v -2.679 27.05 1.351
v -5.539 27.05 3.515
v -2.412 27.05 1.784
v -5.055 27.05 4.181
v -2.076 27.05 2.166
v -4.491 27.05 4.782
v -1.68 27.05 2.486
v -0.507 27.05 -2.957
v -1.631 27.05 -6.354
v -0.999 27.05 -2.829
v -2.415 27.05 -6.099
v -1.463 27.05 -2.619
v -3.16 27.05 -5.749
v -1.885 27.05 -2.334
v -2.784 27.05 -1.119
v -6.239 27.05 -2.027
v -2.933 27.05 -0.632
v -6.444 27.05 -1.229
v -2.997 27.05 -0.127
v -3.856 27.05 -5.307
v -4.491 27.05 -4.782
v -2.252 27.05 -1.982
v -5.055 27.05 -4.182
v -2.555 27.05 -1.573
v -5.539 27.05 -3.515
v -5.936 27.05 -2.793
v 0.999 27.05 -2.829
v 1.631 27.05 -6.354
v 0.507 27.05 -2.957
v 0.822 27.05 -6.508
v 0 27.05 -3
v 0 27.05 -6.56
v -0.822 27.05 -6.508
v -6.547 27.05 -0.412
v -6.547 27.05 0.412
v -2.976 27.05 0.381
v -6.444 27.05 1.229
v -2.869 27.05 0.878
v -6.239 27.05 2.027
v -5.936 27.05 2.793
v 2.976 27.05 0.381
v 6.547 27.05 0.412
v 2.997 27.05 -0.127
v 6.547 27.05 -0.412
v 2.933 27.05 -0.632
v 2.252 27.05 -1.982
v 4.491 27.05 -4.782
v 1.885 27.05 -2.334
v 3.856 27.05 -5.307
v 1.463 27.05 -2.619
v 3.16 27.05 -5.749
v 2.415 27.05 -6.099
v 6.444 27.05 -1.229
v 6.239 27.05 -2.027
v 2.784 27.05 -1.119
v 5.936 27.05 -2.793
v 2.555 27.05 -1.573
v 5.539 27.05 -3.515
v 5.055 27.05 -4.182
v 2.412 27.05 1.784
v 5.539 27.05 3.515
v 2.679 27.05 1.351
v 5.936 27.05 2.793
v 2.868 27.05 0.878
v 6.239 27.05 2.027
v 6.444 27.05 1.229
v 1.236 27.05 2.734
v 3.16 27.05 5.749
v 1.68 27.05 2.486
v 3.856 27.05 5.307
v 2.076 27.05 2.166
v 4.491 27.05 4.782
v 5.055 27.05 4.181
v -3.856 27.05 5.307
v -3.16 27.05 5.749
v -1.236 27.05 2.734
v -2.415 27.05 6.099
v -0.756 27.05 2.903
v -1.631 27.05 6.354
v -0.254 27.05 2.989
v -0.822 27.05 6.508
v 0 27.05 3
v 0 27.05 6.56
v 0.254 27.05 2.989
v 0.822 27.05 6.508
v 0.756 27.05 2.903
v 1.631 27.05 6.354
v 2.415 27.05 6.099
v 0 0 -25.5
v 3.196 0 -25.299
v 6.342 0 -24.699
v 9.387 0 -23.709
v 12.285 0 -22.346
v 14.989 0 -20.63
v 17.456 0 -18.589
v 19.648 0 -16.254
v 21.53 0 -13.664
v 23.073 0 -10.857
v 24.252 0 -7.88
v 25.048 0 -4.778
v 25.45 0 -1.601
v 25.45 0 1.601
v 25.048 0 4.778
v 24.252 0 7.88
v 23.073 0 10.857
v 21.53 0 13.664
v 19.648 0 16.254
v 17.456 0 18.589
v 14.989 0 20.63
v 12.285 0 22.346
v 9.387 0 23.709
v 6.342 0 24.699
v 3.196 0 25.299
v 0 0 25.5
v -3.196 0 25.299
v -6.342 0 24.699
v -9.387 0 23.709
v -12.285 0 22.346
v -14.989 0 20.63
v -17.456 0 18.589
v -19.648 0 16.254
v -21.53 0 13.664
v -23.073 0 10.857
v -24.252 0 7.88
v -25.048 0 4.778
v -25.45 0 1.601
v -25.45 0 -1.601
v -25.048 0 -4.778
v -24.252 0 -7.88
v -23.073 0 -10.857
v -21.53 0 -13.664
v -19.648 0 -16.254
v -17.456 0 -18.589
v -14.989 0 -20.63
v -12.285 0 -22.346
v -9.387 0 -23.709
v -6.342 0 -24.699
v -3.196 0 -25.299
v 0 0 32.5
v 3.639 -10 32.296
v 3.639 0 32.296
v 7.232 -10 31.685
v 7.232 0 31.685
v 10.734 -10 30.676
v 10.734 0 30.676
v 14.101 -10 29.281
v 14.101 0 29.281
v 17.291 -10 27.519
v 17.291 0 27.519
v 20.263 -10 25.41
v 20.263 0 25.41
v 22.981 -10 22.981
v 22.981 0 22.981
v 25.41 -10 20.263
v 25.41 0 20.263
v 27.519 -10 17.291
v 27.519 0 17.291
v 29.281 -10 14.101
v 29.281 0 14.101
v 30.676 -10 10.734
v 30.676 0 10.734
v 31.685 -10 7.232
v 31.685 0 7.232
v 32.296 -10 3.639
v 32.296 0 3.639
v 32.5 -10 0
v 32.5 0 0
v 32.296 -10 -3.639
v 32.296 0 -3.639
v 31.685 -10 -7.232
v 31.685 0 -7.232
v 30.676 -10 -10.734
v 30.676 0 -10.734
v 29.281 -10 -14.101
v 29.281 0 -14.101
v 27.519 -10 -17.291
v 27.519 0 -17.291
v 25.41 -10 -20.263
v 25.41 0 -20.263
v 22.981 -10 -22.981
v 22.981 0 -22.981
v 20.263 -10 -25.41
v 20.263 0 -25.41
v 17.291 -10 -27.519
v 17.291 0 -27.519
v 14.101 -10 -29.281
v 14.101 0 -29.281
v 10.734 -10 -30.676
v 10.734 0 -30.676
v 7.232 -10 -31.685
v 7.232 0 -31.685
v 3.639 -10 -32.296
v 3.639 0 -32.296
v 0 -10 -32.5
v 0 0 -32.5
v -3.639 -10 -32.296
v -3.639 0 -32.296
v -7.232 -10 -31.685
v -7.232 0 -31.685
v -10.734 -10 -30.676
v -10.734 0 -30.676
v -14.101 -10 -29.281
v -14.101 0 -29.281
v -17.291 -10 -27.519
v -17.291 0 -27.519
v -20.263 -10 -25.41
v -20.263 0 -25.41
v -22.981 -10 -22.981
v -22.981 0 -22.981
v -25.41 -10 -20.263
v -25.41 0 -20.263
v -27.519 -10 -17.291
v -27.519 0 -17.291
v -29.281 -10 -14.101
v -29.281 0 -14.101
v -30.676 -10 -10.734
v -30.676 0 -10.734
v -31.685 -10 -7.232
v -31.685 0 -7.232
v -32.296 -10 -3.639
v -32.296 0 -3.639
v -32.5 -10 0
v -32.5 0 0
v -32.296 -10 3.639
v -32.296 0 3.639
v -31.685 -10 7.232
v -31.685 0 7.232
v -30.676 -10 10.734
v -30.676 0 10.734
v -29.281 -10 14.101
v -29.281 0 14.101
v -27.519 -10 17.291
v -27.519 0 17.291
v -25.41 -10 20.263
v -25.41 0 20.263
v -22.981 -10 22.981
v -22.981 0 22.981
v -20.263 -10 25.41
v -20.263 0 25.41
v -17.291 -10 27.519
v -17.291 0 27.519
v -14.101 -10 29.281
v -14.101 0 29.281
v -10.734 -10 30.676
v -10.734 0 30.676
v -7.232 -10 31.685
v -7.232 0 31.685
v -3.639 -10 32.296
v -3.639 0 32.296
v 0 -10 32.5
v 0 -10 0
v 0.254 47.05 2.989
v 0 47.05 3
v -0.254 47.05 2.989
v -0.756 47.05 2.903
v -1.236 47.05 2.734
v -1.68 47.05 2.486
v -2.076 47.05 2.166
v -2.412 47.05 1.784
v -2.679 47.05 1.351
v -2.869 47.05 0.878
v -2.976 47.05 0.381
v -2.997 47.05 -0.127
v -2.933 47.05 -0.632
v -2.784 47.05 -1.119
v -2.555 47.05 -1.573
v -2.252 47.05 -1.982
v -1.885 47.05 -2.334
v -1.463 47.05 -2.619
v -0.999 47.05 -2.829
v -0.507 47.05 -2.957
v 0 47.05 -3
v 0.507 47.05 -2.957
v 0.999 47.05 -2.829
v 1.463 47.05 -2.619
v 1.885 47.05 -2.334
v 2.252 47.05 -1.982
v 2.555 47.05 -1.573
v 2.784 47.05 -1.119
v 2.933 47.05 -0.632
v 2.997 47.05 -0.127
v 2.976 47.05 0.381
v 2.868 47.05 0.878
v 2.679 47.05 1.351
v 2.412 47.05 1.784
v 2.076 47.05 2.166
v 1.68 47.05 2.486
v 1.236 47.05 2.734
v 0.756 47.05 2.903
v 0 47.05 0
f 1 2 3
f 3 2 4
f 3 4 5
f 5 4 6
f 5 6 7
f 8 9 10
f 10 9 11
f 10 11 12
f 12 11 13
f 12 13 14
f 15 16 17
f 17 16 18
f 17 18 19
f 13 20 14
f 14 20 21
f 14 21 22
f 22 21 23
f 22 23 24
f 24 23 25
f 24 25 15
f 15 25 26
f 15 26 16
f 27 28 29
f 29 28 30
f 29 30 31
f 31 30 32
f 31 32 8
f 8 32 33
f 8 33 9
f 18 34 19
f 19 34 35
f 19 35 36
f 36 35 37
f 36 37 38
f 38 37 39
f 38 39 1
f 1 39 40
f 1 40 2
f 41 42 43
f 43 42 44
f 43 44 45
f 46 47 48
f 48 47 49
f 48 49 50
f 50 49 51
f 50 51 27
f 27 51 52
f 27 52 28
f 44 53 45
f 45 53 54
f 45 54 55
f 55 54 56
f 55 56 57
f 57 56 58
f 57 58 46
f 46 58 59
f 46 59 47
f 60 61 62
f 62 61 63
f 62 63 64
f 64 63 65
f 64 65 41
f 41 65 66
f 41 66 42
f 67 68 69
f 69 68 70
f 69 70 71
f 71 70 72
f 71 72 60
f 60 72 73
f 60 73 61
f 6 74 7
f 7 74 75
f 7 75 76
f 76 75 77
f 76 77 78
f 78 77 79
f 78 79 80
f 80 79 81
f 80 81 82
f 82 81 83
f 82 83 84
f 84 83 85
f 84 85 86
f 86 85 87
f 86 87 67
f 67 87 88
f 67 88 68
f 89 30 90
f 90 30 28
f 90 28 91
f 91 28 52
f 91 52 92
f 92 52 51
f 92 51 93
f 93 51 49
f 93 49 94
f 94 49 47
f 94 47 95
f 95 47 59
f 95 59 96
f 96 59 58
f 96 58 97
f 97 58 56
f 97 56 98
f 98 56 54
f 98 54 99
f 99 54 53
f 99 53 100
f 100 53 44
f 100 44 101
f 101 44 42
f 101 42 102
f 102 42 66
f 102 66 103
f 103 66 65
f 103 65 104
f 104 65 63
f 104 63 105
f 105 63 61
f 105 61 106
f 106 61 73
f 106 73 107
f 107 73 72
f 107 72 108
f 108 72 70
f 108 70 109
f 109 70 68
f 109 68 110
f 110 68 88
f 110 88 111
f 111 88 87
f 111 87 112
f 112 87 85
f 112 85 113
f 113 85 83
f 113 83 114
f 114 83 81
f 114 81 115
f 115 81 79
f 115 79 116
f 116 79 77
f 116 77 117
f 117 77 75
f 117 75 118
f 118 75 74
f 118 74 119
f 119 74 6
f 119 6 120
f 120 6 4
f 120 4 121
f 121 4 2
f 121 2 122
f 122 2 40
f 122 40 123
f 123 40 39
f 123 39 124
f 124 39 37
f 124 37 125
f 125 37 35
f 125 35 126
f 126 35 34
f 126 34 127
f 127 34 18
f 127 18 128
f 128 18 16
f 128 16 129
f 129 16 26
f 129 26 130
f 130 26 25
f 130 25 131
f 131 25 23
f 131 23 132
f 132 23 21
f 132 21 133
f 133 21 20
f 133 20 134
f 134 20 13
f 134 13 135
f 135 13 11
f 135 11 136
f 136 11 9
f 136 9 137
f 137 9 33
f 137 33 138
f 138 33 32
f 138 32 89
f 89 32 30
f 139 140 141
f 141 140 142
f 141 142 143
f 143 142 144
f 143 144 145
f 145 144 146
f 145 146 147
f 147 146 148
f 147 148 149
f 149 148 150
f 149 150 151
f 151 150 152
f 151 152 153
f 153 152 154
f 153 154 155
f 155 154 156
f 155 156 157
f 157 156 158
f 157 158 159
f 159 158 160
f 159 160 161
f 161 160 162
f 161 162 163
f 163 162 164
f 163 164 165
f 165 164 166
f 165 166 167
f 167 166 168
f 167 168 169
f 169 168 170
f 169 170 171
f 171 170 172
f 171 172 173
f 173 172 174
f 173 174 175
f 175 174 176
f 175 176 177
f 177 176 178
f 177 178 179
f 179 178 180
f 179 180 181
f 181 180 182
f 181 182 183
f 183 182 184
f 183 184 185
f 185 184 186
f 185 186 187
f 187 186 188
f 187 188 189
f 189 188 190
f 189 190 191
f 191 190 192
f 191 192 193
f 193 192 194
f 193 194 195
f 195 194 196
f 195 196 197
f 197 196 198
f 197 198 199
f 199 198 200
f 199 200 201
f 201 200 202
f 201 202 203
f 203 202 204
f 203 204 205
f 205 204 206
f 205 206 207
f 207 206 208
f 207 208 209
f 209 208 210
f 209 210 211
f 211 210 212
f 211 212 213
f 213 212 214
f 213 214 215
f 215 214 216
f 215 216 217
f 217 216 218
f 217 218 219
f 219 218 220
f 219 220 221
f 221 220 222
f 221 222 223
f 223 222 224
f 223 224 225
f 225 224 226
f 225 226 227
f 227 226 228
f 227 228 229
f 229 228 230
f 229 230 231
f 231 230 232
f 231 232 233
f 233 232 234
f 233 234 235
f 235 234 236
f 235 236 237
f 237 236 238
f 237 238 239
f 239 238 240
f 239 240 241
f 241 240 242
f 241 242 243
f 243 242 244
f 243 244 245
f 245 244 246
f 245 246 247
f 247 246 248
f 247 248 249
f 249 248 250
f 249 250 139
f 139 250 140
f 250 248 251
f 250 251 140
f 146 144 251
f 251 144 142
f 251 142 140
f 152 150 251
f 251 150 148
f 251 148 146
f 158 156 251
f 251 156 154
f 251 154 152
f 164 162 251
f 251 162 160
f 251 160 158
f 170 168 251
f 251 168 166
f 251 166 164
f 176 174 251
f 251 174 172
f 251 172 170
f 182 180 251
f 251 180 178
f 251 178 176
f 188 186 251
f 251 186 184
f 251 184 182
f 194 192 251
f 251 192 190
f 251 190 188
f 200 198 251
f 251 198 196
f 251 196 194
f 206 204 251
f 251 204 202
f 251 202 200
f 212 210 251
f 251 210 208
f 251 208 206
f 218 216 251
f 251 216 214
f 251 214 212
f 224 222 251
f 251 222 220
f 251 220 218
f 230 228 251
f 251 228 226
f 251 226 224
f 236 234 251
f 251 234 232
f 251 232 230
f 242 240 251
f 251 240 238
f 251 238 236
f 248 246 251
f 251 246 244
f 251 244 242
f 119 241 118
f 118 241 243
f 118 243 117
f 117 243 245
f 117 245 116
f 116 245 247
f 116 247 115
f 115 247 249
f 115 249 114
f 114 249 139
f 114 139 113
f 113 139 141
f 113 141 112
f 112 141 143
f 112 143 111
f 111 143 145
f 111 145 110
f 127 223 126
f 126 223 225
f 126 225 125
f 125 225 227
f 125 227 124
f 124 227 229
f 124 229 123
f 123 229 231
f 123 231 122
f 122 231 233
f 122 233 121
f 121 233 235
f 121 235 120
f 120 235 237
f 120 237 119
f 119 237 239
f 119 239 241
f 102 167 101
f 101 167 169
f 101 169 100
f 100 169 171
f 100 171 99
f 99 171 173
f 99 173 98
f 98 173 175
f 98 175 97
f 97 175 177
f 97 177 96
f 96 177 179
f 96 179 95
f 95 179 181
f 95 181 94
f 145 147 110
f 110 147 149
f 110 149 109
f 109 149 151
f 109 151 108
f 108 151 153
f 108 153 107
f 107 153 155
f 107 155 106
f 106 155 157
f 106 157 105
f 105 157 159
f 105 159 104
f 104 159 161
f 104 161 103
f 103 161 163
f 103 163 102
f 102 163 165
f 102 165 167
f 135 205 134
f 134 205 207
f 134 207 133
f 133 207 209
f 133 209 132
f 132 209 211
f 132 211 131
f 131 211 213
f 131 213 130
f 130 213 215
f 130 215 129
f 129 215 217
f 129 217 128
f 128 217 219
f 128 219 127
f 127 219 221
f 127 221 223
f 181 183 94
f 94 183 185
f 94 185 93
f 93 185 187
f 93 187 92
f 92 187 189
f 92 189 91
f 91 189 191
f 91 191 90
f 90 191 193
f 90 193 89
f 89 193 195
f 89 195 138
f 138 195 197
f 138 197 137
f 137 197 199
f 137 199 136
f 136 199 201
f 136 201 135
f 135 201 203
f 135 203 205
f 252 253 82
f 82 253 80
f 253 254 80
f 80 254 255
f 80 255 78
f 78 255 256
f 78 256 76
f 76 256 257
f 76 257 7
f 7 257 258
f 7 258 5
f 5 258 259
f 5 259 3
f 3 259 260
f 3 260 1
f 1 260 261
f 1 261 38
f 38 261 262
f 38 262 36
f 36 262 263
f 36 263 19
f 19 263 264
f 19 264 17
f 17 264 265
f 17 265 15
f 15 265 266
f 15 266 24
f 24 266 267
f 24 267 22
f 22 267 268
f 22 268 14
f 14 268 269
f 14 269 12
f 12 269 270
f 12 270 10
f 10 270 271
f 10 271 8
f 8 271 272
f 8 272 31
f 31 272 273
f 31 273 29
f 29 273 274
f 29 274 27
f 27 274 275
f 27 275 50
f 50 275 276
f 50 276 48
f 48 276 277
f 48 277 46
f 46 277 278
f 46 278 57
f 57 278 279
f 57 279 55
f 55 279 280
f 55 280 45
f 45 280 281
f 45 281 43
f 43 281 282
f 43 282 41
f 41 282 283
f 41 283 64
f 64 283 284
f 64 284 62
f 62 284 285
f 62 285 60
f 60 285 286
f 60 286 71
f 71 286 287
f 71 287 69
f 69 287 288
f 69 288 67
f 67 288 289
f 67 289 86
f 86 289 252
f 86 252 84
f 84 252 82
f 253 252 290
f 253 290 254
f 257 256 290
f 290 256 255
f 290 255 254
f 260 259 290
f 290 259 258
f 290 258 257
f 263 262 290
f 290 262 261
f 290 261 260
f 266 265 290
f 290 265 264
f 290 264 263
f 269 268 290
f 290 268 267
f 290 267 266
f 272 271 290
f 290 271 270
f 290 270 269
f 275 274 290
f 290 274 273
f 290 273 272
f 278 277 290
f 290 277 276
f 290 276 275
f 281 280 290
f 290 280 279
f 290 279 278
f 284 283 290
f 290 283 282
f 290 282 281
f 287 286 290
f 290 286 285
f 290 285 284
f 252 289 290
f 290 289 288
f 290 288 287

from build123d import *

# Parameters (mm, degrees)
SKETCH_2_R      = 6.56
SKETCH_1_R      = 25.5
SKETCH_3_R      = 32.5
EXTRUDE_1_DEPTH = 10
SKETCH_4_R      = 3
EXTRUDE_2_DEPTH = 20


with BuildPart() as part:
    # 스케치2 → 로프트1 section 0
    with BuildSketch(Plane(origin=(0, 27.05, 0), x_dir=(1, 0, 0), z_dir=(0, 1, 0))):
        Circle(SKETCH_2_R)
    # 스케치1 → 로프트1 section 1
    with BuildSketch(Plane(origin=(0, 0, 0), x_dir=(1, 0, 0), z_dir=(0, 1, 0))):
        Circle(SKETCH_1_R)
    loft()

    # 스케치3 → 보스-돌출1 (add)
    with BuildSketch(Plane(origin=(0, 0, 0), x_dir=(1, 0, 0), z_dir=(0, 1, 0))):
        with Locations(Location((0, 0, 0), (0, 0, 270))):
            Circle(SKETCH_3_R)
    extrude(amount=-EXTRUDE_1_DEPTH)

    # 스케치4 → 보스-돌출2 (add)
    with BuildSketch(Plane(origin=(0, 27.05, 0), x_dir=(1, 0, 0), z_dir=(0, 1, 0))):
        with Locations(Location((0, 0, 0), (0, 0, 270))):
            Circle(SKETCH_4_R)
    extrude(amount=EXTRUDE_2_DEPTH)


solid = part.part
